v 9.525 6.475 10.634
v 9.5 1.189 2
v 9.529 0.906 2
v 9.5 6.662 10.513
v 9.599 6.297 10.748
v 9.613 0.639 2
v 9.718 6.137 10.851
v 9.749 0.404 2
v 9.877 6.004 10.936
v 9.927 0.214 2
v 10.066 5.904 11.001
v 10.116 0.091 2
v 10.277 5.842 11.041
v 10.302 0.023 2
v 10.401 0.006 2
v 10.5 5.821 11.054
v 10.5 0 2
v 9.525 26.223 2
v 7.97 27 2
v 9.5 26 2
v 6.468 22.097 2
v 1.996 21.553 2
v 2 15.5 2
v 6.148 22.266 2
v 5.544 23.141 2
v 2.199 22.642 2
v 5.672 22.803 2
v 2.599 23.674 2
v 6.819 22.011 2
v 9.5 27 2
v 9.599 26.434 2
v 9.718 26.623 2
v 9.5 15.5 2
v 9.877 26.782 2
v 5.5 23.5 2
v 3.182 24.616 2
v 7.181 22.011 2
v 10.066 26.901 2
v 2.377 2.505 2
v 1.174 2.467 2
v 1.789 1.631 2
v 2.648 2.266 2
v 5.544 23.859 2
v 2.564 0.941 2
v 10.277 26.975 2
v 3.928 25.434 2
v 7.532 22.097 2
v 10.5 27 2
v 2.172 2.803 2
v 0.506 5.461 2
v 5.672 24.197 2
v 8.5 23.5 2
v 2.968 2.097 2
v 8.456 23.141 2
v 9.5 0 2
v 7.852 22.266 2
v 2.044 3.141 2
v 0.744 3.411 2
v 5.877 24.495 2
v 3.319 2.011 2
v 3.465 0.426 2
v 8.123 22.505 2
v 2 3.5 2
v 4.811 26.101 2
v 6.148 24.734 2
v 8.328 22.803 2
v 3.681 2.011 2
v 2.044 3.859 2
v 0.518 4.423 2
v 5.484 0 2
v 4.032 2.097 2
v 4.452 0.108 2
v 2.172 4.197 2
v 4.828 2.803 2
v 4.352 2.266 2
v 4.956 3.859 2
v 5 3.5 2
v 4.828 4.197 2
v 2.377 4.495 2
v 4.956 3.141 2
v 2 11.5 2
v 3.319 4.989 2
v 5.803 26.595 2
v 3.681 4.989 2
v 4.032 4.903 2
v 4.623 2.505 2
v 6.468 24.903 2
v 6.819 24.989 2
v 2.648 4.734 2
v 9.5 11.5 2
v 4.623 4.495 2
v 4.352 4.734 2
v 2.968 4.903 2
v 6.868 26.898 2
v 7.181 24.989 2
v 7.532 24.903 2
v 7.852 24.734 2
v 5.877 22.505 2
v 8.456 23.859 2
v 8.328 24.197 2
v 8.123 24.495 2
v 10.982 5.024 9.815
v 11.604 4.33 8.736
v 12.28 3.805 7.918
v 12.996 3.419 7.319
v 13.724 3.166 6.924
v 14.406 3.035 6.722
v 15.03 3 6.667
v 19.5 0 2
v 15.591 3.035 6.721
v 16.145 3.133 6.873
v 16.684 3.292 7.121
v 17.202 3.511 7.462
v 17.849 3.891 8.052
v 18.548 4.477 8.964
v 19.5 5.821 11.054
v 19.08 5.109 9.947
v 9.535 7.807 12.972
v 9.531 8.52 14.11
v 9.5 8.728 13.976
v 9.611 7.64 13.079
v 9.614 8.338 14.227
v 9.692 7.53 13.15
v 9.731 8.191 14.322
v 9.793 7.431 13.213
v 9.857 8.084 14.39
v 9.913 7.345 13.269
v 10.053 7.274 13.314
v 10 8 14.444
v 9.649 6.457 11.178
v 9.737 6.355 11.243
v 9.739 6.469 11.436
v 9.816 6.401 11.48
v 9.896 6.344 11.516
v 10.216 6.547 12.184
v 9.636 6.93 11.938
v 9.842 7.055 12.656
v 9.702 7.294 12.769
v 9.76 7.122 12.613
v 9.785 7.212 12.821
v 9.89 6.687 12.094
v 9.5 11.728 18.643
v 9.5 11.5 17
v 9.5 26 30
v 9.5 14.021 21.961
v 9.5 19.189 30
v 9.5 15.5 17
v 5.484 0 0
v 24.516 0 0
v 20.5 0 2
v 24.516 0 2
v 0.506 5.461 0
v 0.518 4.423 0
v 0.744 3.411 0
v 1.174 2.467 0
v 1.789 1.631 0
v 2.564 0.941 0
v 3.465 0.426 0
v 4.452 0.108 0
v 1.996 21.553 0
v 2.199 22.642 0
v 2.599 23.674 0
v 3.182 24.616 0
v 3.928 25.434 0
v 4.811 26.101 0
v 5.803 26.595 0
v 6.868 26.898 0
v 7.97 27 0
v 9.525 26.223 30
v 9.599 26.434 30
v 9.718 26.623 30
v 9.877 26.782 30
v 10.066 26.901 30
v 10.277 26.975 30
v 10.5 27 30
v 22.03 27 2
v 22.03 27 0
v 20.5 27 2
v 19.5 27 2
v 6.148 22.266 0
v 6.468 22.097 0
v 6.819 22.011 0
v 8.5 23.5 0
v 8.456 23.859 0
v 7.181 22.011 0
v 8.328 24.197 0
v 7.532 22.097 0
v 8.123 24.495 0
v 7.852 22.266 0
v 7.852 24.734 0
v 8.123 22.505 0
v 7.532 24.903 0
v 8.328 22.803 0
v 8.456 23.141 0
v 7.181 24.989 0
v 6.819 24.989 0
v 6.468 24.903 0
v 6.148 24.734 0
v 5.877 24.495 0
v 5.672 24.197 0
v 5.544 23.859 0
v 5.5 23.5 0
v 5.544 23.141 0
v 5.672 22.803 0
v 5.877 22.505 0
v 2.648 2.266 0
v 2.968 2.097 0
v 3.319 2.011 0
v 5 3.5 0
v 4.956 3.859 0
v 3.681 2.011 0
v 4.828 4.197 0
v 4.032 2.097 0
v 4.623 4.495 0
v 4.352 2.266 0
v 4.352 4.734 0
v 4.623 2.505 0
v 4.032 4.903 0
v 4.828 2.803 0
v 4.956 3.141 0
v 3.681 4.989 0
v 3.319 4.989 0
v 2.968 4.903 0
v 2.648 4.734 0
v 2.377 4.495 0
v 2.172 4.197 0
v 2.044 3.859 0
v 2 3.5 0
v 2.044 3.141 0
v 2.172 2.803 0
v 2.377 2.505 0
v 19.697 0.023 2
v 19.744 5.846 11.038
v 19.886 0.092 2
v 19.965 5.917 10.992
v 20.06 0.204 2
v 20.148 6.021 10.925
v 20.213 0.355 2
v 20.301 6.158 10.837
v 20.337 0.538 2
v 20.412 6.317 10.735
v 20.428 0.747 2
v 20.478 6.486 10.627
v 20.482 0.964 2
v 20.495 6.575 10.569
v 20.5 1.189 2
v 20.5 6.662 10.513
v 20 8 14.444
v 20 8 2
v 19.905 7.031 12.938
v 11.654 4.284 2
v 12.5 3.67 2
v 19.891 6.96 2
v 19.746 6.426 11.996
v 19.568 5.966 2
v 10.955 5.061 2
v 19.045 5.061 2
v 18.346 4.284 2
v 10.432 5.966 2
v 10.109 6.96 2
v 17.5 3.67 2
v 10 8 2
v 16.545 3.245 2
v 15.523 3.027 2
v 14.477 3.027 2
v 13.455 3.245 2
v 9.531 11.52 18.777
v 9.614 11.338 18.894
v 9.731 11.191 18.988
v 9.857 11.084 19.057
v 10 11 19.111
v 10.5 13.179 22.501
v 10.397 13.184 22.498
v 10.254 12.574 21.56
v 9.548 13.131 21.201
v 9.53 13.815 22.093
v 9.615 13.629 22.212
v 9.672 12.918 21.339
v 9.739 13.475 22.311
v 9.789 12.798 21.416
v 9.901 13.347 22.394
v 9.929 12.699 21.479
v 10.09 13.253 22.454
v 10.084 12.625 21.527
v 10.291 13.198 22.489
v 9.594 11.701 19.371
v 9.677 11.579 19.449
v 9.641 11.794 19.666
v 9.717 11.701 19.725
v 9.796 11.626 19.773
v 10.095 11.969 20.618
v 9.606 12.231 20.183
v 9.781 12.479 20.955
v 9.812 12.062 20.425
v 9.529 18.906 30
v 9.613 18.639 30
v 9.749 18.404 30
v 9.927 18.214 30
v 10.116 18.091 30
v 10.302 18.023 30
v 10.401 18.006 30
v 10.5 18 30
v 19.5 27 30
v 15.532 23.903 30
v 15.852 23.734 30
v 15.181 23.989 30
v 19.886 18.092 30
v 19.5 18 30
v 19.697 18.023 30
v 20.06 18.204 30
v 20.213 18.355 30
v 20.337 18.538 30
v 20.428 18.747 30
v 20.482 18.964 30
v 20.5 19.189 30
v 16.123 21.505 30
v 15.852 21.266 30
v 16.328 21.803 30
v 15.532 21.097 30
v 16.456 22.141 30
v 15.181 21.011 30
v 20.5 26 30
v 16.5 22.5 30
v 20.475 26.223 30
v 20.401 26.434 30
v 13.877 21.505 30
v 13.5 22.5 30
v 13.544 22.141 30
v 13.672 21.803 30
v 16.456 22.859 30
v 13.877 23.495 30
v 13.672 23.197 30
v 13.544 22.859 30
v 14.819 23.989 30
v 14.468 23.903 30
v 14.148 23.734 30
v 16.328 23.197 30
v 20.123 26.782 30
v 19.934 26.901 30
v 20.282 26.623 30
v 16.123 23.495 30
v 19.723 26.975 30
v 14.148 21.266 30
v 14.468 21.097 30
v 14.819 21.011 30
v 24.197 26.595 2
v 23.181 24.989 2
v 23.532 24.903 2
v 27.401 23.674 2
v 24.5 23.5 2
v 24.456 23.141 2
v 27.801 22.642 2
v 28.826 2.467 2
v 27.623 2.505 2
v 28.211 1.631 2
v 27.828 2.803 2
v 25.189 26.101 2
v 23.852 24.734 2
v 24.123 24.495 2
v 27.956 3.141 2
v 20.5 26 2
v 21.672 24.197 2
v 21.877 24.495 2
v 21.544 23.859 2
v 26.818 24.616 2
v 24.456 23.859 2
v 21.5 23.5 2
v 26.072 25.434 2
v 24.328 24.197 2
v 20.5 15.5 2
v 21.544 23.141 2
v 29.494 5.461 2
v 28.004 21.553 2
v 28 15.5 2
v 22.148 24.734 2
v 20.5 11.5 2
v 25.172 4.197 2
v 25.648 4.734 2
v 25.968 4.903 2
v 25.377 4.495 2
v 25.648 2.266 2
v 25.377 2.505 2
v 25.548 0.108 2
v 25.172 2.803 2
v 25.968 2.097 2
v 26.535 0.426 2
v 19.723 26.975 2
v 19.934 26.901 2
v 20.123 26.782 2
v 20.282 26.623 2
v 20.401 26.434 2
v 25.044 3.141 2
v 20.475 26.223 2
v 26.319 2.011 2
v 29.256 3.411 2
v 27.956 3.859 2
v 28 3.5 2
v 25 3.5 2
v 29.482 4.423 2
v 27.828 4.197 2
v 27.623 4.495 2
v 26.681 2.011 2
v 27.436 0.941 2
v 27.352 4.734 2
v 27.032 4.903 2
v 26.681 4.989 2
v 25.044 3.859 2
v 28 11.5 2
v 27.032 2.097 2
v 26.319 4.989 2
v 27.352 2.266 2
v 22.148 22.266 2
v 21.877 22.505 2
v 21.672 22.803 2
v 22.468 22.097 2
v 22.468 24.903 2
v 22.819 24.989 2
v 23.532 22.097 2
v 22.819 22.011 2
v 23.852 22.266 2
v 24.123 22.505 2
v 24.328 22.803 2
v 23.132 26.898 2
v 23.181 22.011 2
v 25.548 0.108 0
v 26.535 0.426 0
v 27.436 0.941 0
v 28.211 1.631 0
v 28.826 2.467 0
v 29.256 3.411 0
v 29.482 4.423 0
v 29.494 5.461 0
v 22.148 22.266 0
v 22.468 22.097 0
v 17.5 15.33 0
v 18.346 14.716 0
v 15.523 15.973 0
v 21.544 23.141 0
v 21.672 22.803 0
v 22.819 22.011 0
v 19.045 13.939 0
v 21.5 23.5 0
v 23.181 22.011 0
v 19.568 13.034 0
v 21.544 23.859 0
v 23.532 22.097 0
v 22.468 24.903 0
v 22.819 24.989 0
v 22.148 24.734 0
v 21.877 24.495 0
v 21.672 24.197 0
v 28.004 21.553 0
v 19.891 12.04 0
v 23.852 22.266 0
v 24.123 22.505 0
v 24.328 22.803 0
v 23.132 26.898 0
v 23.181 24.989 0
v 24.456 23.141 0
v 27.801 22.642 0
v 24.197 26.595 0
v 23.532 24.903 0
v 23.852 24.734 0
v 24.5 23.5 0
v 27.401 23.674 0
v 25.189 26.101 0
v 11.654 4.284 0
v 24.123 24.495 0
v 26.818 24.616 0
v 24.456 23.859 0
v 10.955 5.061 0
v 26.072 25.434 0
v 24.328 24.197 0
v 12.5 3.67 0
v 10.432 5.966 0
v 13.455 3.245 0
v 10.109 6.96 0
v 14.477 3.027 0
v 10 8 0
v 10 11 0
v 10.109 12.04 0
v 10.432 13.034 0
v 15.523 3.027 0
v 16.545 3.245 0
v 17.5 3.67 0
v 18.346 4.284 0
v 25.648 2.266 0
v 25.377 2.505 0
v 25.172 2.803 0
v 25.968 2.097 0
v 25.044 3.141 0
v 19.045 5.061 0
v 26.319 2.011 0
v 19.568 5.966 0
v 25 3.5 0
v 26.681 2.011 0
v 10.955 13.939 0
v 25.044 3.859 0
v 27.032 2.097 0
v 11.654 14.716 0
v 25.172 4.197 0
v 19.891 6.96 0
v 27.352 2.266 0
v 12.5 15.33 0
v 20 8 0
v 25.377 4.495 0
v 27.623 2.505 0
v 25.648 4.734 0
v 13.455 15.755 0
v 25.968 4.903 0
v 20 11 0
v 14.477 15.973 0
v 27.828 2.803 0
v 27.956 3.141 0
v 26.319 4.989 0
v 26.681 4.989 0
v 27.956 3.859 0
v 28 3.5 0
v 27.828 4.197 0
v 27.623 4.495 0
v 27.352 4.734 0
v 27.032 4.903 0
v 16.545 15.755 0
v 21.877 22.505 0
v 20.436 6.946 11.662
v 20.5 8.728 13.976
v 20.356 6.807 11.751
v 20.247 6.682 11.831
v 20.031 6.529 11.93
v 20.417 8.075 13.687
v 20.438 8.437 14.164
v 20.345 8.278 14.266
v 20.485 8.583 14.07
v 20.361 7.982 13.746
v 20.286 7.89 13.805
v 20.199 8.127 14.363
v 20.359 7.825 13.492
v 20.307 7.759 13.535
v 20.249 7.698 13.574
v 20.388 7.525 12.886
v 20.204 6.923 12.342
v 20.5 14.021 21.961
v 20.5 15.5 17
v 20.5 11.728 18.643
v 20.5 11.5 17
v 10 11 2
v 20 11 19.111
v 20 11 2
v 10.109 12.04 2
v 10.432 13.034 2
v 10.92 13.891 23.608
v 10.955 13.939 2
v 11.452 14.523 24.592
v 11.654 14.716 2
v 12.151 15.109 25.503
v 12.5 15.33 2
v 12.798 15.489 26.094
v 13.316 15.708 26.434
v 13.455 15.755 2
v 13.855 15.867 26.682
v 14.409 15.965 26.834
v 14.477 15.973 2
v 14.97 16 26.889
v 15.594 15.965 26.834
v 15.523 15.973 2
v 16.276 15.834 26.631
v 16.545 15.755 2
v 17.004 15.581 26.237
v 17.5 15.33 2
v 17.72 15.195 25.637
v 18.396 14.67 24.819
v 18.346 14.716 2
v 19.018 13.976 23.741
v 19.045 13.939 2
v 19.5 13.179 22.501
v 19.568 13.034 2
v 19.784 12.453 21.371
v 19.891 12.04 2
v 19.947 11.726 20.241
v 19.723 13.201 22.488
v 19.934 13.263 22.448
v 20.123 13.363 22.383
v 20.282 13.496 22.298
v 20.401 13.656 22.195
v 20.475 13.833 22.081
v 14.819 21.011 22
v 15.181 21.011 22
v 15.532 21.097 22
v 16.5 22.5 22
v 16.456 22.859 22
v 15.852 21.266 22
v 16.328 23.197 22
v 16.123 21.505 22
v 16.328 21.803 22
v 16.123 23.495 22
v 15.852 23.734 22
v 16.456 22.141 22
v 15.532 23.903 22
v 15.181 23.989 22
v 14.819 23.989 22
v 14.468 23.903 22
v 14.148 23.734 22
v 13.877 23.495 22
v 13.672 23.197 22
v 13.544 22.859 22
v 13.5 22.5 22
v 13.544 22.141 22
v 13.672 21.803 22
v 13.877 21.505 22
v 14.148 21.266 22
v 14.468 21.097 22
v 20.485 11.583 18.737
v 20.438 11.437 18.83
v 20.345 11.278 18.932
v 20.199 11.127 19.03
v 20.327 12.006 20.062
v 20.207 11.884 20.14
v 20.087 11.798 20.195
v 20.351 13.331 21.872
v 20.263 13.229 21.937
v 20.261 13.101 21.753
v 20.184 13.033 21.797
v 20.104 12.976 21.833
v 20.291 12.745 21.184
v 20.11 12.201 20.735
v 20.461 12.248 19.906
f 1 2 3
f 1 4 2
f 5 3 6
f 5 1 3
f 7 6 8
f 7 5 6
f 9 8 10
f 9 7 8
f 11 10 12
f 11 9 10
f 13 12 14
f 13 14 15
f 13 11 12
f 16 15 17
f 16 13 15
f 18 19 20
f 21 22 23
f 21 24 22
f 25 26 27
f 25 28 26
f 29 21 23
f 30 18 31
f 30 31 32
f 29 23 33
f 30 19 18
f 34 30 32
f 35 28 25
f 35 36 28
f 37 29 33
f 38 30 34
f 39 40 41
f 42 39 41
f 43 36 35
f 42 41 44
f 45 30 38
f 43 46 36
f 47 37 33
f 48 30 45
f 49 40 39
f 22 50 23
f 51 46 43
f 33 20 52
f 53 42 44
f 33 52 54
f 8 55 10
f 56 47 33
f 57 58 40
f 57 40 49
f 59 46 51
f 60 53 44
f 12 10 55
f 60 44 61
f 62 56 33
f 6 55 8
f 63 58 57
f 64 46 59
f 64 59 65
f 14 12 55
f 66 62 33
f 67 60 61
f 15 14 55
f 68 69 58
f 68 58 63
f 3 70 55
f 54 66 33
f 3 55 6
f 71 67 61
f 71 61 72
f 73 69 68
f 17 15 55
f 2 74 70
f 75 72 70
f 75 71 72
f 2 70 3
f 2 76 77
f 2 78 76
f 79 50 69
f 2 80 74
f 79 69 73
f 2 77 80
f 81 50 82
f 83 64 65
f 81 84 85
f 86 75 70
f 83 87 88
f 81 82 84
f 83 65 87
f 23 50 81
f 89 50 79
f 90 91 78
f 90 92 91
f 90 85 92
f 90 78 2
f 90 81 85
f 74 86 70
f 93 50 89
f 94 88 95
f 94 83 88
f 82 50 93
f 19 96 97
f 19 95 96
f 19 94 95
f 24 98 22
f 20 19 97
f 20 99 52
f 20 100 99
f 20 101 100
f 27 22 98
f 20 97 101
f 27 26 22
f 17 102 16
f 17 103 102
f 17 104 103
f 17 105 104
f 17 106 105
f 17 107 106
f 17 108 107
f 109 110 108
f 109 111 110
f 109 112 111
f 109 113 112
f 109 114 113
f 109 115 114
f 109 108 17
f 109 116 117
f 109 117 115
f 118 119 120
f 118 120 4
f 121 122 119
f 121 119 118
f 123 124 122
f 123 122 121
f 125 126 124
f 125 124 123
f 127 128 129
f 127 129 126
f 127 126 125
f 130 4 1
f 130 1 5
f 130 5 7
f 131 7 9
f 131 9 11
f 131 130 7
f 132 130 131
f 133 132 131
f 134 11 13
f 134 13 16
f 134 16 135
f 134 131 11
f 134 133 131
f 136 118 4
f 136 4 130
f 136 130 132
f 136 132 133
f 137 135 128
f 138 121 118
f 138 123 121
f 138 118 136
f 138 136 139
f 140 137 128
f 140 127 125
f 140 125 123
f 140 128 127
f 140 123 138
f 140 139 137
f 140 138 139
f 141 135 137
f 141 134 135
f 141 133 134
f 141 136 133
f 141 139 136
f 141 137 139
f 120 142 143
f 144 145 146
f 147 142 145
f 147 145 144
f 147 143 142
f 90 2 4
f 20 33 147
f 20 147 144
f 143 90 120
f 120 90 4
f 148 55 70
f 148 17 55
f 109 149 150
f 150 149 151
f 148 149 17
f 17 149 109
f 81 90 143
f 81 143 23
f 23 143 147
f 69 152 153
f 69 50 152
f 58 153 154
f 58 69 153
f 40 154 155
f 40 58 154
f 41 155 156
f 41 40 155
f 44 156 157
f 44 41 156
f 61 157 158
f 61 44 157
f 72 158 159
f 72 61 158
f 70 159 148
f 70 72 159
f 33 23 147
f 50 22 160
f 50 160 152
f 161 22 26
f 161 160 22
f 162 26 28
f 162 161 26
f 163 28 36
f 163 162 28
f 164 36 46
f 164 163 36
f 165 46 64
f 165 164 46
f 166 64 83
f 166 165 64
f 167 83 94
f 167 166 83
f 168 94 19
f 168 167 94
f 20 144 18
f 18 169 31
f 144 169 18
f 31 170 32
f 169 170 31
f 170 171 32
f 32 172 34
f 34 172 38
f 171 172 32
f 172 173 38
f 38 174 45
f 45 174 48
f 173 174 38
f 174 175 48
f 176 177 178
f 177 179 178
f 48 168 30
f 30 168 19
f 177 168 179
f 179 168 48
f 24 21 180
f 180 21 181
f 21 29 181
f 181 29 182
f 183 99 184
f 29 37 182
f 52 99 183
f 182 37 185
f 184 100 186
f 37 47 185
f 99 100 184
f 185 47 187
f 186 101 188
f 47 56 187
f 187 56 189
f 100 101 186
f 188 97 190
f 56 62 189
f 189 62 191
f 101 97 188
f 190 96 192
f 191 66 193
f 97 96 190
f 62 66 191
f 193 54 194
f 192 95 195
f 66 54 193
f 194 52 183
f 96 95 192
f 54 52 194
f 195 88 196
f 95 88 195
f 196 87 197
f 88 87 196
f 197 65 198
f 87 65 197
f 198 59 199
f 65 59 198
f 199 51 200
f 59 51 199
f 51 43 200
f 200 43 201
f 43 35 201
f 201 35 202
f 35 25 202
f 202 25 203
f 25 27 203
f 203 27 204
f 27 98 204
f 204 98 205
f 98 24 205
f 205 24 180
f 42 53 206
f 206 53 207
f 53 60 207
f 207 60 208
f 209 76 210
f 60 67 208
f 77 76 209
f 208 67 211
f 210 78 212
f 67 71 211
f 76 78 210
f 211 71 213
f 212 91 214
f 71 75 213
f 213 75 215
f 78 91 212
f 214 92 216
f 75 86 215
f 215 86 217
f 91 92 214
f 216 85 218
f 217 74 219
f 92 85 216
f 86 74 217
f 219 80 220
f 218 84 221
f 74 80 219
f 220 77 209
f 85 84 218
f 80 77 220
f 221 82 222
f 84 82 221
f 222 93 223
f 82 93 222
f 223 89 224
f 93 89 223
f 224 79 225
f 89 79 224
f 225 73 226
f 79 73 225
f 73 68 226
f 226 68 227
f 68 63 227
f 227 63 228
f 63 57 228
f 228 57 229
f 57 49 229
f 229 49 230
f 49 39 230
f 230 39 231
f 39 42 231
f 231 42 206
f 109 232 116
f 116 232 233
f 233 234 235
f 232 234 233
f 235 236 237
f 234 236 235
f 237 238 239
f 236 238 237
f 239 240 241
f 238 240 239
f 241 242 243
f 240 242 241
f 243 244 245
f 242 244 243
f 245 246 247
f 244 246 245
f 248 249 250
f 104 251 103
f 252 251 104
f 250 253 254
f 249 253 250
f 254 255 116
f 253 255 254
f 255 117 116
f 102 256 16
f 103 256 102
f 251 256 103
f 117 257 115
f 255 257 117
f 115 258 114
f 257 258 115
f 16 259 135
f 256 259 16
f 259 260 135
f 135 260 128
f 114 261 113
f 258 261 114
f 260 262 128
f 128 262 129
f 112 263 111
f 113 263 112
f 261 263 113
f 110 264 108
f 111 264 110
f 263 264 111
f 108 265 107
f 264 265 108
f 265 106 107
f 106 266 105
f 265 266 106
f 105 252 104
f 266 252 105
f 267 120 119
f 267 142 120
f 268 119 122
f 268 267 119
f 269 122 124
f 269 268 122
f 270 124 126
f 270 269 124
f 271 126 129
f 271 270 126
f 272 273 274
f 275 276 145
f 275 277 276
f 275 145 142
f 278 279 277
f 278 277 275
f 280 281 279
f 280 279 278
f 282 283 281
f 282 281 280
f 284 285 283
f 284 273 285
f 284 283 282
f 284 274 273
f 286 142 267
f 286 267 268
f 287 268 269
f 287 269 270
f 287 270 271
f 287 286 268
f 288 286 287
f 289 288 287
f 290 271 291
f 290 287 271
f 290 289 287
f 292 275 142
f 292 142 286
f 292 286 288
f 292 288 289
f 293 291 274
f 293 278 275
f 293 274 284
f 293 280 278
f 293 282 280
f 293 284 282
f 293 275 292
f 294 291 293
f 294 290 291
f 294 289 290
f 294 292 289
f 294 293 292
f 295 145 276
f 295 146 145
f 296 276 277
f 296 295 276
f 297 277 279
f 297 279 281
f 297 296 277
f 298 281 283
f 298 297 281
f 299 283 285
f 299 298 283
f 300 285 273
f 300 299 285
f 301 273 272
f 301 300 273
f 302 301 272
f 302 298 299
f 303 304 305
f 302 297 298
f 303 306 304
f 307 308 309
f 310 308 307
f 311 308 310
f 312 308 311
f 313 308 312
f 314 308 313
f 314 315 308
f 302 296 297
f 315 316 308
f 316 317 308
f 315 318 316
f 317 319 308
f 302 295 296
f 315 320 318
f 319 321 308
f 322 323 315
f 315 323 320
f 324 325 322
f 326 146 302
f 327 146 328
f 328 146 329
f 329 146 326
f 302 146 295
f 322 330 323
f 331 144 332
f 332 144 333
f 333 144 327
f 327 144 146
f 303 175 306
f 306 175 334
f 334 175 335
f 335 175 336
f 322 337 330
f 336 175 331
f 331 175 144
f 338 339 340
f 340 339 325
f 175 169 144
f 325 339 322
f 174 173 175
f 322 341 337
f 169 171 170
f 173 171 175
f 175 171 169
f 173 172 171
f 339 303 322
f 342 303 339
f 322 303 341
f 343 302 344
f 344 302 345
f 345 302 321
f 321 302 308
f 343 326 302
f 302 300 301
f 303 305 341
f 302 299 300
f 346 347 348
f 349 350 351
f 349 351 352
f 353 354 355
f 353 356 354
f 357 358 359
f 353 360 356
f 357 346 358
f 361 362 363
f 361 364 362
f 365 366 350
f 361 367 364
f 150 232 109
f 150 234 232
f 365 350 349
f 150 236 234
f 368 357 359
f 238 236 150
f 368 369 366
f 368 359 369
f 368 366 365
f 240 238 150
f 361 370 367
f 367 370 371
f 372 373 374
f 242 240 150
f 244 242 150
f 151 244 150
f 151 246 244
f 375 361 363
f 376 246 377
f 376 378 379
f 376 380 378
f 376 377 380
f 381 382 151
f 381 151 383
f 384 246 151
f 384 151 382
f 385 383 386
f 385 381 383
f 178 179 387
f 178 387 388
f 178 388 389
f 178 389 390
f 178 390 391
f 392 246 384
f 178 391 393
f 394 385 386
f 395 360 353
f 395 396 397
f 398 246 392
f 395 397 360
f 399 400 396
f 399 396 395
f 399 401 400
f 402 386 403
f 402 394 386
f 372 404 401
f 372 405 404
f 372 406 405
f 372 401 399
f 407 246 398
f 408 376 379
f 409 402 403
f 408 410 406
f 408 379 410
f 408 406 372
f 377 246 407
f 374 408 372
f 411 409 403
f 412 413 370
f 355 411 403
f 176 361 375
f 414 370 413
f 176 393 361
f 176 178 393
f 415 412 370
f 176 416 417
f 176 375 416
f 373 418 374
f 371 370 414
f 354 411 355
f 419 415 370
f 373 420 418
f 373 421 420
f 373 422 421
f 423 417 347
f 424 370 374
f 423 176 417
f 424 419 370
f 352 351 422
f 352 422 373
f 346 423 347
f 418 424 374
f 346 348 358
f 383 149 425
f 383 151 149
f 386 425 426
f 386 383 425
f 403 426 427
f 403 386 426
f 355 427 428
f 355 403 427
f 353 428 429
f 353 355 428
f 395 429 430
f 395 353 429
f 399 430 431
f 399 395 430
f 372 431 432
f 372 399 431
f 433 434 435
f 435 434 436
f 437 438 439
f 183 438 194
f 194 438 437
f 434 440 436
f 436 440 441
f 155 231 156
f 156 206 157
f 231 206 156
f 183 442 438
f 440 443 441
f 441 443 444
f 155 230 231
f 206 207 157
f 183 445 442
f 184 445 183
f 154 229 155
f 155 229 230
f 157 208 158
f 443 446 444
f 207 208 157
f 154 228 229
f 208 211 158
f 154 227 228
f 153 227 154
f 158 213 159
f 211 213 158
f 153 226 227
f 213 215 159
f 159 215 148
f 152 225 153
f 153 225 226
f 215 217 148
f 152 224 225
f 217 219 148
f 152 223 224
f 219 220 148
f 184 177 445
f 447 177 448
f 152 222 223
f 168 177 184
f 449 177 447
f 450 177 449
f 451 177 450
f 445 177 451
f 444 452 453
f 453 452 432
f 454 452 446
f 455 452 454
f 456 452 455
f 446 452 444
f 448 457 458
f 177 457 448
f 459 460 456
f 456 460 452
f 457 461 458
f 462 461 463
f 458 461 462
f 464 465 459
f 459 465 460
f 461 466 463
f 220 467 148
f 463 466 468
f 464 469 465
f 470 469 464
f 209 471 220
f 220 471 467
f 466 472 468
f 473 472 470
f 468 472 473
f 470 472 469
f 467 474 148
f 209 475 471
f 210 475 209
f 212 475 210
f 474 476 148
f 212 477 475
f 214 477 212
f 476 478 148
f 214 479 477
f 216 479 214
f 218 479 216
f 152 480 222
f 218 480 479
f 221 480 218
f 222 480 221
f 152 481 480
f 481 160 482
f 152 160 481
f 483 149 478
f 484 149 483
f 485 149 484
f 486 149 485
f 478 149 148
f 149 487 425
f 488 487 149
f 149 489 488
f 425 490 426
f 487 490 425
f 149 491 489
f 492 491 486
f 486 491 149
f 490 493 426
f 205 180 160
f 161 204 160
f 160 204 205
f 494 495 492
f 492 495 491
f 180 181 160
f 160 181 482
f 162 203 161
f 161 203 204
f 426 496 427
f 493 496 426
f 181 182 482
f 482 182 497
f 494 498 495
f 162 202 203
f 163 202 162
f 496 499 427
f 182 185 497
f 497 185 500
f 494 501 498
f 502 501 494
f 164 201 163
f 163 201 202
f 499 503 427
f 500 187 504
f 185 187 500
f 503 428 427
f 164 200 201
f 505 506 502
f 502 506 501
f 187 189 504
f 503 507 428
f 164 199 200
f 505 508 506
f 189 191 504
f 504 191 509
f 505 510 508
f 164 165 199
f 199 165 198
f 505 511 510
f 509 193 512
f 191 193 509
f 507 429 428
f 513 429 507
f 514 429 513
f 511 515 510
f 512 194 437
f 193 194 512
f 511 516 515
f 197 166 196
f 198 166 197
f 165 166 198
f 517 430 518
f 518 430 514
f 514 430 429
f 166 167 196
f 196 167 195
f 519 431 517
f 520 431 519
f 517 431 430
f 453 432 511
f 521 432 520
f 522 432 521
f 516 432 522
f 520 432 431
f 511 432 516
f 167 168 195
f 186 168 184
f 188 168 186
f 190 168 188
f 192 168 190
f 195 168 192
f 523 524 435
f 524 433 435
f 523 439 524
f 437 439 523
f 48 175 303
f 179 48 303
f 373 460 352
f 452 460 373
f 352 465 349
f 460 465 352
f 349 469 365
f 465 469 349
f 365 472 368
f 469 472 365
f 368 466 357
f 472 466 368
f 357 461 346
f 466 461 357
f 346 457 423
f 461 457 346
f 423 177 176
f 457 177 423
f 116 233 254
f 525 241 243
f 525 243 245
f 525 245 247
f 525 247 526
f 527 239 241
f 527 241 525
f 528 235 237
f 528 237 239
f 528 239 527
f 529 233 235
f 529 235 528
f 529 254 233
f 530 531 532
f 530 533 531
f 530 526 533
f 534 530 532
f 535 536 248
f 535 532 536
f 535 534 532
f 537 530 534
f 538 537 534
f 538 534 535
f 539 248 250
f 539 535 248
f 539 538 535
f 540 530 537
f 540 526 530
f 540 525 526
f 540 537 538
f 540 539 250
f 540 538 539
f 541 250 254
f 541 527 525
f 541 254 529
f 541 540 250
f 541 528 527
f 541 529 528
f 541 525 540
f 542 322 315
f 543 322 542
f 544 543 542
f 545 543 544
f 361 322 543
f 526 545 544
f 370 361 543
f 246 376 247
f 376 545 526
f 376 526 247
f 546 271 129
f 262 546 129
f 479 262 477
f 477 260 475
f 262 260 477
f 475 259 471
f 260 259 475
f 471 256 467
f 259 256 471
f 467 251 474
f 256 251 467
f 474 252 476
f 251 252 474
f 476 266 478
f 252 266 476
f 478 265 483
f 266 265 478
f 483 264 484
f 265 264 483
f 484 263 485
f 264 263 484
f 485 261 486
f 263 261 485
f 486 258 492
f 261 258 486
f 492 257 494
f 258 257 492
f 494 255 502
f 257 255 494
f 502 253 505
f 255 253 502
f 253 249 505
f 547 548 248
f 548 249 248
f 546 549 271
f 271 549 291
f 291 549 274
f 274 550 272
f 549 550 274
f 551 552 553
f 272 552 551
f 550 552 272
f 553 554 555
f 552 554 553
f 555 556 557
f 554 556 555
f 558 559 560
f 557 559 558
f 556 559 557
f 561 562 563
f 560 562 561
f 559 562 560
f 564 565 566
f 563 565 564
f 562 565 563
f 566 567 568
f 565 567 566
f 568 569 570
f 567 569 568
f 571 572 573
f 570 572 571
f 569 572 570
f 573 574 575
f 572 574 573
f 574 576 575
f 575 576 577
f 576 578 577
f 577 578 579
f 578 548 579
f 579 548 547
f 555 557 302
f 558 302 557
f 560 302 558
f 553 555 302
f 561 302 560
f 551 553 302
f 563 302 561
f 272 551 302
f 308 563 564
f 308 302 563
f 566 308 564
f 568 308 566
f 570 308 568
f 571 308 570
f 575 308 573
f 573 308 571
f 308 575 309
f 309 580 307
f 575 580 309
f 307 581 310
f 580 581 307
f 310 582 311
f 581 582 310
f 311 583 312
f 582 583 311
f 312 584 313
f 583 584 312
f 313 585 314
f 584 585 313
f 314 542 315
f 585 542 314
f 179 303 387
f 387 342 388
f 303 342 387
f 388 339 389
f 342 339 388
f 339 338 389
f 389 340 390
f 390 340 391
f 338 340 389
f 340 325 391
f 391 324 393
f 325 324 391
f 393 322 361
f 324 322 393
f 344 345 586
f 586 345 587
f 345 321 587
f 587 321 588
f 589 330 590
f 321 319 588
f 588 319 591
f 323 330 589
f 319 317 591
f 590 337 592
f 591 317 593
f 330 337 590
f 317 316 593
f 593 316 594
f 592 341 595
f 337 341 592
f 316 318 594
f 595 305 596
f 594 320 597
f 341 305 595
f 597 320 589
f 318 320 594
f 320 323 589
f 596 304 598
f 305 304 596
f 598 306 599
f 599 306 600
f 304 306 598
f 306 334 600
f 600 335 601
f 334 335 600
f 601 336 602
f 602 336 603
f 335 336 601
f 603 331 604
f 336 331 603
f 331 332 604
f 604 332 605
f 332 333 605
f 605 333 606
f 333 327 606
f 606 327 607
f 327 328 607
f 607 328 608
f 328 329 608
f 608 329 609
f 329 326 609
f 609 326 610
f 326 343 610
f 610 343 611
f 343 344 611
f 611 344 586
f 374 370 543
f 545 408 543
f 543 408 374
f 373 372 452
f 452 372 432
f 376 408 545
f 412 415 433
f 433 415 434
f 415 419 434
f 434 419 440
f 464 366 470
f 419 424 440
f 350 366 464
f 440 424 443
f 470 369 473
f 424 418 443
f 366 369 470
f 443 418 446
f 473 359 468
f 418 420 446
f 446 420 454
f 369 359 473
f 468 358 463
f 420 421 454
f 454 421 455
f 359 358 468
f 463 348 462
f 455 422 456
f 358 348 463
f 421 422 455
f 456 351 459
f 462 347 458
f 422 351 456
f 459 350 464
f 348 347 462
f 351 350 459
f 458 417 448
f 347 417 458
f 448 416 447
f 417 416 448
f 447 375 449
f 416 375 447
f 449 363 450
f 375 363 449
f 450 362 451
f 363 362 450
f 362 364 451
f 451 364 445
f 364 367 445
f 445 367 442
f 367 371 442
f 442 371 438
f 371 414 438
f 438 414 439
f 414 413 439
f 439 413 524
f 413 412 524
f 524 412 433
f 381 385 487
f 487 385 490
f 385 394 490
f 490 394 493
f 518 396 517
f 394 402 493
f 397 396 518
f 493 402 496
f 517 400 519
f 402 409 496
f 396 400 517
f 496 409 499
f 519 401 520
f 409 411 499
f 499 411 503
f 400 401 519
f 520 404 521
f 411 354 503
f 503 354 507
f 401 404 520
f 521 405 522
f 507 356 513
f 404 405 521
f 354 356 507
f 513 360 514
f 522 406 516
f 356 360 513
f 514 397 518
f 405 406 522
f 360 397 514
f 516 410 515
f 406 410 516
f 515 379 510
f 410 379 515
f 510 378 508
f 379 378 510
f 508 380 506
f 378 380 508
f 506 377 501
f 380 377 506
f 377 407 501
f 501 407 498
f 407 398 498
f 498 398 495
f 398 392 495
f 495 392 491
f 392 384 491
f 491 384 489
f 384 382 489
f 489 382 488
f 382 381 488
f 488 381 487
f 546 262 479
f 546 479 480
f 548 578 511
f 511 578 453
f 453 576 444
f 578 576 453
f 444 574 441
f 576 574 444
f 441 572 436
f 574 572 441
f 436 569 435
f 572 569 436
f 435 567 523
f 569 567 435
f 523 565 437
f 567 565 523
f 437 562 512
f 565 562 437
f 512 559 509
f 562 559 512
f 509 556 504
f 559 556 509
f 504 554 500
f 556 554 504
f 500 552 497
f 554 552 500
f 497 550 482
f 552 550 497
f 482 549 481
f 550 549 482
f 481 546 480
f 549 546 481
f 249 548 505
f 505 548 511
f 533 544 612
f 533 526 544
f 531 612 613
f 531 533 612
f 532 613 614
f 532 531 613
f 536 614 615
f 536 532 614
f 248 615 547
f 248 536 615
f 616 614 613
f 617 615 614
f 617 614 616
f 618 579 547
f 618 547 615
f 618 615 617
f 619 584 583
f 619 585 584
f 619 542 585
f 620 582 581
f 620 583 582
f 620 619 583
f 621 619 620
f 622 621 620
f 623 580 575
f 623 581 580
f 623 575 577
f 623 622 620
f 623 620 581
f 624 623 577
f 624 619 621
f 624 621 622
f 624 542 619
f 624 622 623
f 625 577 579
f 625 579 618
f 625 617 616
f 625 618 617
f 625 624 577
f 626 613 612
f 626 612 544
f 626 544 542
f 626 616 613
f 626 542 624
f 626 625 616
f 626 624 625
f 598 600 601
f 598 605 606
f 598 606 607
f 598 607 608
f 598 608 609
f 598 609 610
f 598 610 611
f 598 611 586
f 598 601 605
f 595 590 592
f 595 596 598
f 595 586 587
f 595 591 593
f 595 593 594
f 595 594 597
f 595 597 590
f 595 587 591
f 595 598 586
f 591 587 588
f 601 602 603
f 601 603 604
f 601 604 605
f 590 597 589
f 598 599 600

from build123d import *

# Parameters (mm, degrees)
SKETCH_W        = 30
SKETCH_H        = 27
PAD_DEPTH       = 2
SKETCH002_W     = 11
SKETCH002_H     = 27
PAD001_DEPTH    = 28
SKETCH001_R     = 1.5
POCKET001_DEPTH = 2.001
POCKET_DEPTH    = 20.501
POCKET002_DEPTH = 28.001
FILLET_R        = 6
FILLET001_R     = 5
FILLET002_R     = 1
SKETCH005_R     = 1.5
POCKET003_DEPTH = 8
SKETCH006_W     = 7.5
SKETCH006_H     = 4
PAD002_DEPTH    = 15
POCKET004_DEPTH = 4


with BuildPart() as part:
    # Sketch → Pad (new body)
    with BuildSketch(Plane.XY):
        with Locations((15, 13.5)):
            Rectangle(SKETCH_W, SKETCH_H)
    extrude(amount=PAD_DEPTH)

    # Sketch002 (on Face6 of Pad) → Pad001 (join)
    with BuildSketch(Plane.XY.offset(2)):
        with Locations((15, 13.5)):
            Rectangle(SKETCH002_W, SKETCH002_H)
    extrude(amount=PAD001_DEPTH)

    # Sketch001 (on Face6 of Pad) → Pocket001 (cut, through all)
    with BuildSketch(Plane.XY.offset(2)):
        with Locations((3.5, 3.5)):
            Circle(SKETCH001_R)
        with Locations((26.5, 3.5)):
            Circle(SKETCH001_R)
        with Locations((23, 23.5)):
            Circle(SKETCH001_R)
        with Locations((7, 23.5)):
            Circle(SKETCH001_R)
        Polygon((0, 0), (0, 27), (2.5, 27), align=None)
        Polygon((30, 0), (30, 27), (27.5, 27), align=None)
        with BuildLine():
            ThreePointArc((10, 8), (15, 3), (20, 8))
            Line((20, 8), (20, 11))
            ThreePointArc((20, 11), (15, 16), (10, 11))
            Line((10, 8), (10, 11))
        make_face()
    extrude(amount=-POCKET001_DEPTH, mode=Mode.SUBTRACT)

    # Sketch003 (on Face11 of Pad001) → Pocket (cut, through all)
    with BuildSketch(Plane.YZ.offset(20.5)):
        Polygon((0, 30), (18, 30), (0, 2), align=None)
    extrude(amount=-POCKET_DEPTH, mode=Mode.SUBTRACT)

    # Sketch004 (on Face21 of Pocket) → Pocket002 (cut, through all)
    with BuildSketch(Plane(origin=(0, 0, 2), x_dir=(1, 0, 0), z_dir=(0, 0, -1))):
        with BuildLine():
            ThreePointArc((10, -11), (15, -16), (20, -11))
            Line((20, -11), (20, -8))
            ThreePointArc((20, -8), (15, -3), (10, -8))
            Line((10, -11), (10, -8))
        make_face()
    extrude(amount=-POCKET002_DEPTH, mode=Mode.SUBTRACT)

    # Fillet
    fillet_edges = [part.edges().sort_by_distance(p)[0] for p in [
        (27.5, 27, 1),
        (2.5, 27, 1),
    ]]
    fillet(fillet_edges, radius=FILLET_R)

    # Fillet001
    fillet001_edges = [part.edges().sort_by_distance(p)[0] for p in [
        (30, 0, 1),
        (0, 0, 1),
    ]]
    fillet(fillet001_edges, radius=FILLET001_R)

    # Fillet002
    fillet002_edges = [part.edges().sort_by_distance(p)[0] for p in [
        (20.5, 27, 16),
        (9.5, 27, 16),
        (20.5, 9, 16),
        (9.5, 9, 16),
    ]]
    fillet(fillet002_edges, radius=FILLET002_R)

    # Sketch005 (on Face19 of Pocket002) → Pocket003 (cut)
    with BuildSketch(Plane.XY.offset(30)):
        with Locations((15, 22.5)):
            Circle(SKETCH005_R)
    extrude(amount=-POCKET003_DEPTH, mode=Mode.SUBTRACT)

    # Sketch006 (on Face1 of Pocket003) → Pad002 (join)
    with BuildSketch(Plane.XY.offset(2)):
        with Locations((5.75, 13.5)):
            Rectangle(SKETCH006_W, SKETCH006_H)
        with Locations((24.25, 13.5)):
            Rectangle(SKETCH006_W, SKETCH006_H)
    extrude(amount=PAD002_DEPTH)

    # Sketch007 (on Face14 of Pad002) → Pocket004 (cut)
    with BuildSketch(Plane.XZ.offset(-11.5)):
        Polygon((2, 2), (9.5, 17), (2, 17), align=None)
        Polygon((20.5, 17), (28, 2), (28, 17), align=None)
    extrude(amount=-POCKET004_DEPTH, mode=Mode.SUBTRACT)


solid = part.part
